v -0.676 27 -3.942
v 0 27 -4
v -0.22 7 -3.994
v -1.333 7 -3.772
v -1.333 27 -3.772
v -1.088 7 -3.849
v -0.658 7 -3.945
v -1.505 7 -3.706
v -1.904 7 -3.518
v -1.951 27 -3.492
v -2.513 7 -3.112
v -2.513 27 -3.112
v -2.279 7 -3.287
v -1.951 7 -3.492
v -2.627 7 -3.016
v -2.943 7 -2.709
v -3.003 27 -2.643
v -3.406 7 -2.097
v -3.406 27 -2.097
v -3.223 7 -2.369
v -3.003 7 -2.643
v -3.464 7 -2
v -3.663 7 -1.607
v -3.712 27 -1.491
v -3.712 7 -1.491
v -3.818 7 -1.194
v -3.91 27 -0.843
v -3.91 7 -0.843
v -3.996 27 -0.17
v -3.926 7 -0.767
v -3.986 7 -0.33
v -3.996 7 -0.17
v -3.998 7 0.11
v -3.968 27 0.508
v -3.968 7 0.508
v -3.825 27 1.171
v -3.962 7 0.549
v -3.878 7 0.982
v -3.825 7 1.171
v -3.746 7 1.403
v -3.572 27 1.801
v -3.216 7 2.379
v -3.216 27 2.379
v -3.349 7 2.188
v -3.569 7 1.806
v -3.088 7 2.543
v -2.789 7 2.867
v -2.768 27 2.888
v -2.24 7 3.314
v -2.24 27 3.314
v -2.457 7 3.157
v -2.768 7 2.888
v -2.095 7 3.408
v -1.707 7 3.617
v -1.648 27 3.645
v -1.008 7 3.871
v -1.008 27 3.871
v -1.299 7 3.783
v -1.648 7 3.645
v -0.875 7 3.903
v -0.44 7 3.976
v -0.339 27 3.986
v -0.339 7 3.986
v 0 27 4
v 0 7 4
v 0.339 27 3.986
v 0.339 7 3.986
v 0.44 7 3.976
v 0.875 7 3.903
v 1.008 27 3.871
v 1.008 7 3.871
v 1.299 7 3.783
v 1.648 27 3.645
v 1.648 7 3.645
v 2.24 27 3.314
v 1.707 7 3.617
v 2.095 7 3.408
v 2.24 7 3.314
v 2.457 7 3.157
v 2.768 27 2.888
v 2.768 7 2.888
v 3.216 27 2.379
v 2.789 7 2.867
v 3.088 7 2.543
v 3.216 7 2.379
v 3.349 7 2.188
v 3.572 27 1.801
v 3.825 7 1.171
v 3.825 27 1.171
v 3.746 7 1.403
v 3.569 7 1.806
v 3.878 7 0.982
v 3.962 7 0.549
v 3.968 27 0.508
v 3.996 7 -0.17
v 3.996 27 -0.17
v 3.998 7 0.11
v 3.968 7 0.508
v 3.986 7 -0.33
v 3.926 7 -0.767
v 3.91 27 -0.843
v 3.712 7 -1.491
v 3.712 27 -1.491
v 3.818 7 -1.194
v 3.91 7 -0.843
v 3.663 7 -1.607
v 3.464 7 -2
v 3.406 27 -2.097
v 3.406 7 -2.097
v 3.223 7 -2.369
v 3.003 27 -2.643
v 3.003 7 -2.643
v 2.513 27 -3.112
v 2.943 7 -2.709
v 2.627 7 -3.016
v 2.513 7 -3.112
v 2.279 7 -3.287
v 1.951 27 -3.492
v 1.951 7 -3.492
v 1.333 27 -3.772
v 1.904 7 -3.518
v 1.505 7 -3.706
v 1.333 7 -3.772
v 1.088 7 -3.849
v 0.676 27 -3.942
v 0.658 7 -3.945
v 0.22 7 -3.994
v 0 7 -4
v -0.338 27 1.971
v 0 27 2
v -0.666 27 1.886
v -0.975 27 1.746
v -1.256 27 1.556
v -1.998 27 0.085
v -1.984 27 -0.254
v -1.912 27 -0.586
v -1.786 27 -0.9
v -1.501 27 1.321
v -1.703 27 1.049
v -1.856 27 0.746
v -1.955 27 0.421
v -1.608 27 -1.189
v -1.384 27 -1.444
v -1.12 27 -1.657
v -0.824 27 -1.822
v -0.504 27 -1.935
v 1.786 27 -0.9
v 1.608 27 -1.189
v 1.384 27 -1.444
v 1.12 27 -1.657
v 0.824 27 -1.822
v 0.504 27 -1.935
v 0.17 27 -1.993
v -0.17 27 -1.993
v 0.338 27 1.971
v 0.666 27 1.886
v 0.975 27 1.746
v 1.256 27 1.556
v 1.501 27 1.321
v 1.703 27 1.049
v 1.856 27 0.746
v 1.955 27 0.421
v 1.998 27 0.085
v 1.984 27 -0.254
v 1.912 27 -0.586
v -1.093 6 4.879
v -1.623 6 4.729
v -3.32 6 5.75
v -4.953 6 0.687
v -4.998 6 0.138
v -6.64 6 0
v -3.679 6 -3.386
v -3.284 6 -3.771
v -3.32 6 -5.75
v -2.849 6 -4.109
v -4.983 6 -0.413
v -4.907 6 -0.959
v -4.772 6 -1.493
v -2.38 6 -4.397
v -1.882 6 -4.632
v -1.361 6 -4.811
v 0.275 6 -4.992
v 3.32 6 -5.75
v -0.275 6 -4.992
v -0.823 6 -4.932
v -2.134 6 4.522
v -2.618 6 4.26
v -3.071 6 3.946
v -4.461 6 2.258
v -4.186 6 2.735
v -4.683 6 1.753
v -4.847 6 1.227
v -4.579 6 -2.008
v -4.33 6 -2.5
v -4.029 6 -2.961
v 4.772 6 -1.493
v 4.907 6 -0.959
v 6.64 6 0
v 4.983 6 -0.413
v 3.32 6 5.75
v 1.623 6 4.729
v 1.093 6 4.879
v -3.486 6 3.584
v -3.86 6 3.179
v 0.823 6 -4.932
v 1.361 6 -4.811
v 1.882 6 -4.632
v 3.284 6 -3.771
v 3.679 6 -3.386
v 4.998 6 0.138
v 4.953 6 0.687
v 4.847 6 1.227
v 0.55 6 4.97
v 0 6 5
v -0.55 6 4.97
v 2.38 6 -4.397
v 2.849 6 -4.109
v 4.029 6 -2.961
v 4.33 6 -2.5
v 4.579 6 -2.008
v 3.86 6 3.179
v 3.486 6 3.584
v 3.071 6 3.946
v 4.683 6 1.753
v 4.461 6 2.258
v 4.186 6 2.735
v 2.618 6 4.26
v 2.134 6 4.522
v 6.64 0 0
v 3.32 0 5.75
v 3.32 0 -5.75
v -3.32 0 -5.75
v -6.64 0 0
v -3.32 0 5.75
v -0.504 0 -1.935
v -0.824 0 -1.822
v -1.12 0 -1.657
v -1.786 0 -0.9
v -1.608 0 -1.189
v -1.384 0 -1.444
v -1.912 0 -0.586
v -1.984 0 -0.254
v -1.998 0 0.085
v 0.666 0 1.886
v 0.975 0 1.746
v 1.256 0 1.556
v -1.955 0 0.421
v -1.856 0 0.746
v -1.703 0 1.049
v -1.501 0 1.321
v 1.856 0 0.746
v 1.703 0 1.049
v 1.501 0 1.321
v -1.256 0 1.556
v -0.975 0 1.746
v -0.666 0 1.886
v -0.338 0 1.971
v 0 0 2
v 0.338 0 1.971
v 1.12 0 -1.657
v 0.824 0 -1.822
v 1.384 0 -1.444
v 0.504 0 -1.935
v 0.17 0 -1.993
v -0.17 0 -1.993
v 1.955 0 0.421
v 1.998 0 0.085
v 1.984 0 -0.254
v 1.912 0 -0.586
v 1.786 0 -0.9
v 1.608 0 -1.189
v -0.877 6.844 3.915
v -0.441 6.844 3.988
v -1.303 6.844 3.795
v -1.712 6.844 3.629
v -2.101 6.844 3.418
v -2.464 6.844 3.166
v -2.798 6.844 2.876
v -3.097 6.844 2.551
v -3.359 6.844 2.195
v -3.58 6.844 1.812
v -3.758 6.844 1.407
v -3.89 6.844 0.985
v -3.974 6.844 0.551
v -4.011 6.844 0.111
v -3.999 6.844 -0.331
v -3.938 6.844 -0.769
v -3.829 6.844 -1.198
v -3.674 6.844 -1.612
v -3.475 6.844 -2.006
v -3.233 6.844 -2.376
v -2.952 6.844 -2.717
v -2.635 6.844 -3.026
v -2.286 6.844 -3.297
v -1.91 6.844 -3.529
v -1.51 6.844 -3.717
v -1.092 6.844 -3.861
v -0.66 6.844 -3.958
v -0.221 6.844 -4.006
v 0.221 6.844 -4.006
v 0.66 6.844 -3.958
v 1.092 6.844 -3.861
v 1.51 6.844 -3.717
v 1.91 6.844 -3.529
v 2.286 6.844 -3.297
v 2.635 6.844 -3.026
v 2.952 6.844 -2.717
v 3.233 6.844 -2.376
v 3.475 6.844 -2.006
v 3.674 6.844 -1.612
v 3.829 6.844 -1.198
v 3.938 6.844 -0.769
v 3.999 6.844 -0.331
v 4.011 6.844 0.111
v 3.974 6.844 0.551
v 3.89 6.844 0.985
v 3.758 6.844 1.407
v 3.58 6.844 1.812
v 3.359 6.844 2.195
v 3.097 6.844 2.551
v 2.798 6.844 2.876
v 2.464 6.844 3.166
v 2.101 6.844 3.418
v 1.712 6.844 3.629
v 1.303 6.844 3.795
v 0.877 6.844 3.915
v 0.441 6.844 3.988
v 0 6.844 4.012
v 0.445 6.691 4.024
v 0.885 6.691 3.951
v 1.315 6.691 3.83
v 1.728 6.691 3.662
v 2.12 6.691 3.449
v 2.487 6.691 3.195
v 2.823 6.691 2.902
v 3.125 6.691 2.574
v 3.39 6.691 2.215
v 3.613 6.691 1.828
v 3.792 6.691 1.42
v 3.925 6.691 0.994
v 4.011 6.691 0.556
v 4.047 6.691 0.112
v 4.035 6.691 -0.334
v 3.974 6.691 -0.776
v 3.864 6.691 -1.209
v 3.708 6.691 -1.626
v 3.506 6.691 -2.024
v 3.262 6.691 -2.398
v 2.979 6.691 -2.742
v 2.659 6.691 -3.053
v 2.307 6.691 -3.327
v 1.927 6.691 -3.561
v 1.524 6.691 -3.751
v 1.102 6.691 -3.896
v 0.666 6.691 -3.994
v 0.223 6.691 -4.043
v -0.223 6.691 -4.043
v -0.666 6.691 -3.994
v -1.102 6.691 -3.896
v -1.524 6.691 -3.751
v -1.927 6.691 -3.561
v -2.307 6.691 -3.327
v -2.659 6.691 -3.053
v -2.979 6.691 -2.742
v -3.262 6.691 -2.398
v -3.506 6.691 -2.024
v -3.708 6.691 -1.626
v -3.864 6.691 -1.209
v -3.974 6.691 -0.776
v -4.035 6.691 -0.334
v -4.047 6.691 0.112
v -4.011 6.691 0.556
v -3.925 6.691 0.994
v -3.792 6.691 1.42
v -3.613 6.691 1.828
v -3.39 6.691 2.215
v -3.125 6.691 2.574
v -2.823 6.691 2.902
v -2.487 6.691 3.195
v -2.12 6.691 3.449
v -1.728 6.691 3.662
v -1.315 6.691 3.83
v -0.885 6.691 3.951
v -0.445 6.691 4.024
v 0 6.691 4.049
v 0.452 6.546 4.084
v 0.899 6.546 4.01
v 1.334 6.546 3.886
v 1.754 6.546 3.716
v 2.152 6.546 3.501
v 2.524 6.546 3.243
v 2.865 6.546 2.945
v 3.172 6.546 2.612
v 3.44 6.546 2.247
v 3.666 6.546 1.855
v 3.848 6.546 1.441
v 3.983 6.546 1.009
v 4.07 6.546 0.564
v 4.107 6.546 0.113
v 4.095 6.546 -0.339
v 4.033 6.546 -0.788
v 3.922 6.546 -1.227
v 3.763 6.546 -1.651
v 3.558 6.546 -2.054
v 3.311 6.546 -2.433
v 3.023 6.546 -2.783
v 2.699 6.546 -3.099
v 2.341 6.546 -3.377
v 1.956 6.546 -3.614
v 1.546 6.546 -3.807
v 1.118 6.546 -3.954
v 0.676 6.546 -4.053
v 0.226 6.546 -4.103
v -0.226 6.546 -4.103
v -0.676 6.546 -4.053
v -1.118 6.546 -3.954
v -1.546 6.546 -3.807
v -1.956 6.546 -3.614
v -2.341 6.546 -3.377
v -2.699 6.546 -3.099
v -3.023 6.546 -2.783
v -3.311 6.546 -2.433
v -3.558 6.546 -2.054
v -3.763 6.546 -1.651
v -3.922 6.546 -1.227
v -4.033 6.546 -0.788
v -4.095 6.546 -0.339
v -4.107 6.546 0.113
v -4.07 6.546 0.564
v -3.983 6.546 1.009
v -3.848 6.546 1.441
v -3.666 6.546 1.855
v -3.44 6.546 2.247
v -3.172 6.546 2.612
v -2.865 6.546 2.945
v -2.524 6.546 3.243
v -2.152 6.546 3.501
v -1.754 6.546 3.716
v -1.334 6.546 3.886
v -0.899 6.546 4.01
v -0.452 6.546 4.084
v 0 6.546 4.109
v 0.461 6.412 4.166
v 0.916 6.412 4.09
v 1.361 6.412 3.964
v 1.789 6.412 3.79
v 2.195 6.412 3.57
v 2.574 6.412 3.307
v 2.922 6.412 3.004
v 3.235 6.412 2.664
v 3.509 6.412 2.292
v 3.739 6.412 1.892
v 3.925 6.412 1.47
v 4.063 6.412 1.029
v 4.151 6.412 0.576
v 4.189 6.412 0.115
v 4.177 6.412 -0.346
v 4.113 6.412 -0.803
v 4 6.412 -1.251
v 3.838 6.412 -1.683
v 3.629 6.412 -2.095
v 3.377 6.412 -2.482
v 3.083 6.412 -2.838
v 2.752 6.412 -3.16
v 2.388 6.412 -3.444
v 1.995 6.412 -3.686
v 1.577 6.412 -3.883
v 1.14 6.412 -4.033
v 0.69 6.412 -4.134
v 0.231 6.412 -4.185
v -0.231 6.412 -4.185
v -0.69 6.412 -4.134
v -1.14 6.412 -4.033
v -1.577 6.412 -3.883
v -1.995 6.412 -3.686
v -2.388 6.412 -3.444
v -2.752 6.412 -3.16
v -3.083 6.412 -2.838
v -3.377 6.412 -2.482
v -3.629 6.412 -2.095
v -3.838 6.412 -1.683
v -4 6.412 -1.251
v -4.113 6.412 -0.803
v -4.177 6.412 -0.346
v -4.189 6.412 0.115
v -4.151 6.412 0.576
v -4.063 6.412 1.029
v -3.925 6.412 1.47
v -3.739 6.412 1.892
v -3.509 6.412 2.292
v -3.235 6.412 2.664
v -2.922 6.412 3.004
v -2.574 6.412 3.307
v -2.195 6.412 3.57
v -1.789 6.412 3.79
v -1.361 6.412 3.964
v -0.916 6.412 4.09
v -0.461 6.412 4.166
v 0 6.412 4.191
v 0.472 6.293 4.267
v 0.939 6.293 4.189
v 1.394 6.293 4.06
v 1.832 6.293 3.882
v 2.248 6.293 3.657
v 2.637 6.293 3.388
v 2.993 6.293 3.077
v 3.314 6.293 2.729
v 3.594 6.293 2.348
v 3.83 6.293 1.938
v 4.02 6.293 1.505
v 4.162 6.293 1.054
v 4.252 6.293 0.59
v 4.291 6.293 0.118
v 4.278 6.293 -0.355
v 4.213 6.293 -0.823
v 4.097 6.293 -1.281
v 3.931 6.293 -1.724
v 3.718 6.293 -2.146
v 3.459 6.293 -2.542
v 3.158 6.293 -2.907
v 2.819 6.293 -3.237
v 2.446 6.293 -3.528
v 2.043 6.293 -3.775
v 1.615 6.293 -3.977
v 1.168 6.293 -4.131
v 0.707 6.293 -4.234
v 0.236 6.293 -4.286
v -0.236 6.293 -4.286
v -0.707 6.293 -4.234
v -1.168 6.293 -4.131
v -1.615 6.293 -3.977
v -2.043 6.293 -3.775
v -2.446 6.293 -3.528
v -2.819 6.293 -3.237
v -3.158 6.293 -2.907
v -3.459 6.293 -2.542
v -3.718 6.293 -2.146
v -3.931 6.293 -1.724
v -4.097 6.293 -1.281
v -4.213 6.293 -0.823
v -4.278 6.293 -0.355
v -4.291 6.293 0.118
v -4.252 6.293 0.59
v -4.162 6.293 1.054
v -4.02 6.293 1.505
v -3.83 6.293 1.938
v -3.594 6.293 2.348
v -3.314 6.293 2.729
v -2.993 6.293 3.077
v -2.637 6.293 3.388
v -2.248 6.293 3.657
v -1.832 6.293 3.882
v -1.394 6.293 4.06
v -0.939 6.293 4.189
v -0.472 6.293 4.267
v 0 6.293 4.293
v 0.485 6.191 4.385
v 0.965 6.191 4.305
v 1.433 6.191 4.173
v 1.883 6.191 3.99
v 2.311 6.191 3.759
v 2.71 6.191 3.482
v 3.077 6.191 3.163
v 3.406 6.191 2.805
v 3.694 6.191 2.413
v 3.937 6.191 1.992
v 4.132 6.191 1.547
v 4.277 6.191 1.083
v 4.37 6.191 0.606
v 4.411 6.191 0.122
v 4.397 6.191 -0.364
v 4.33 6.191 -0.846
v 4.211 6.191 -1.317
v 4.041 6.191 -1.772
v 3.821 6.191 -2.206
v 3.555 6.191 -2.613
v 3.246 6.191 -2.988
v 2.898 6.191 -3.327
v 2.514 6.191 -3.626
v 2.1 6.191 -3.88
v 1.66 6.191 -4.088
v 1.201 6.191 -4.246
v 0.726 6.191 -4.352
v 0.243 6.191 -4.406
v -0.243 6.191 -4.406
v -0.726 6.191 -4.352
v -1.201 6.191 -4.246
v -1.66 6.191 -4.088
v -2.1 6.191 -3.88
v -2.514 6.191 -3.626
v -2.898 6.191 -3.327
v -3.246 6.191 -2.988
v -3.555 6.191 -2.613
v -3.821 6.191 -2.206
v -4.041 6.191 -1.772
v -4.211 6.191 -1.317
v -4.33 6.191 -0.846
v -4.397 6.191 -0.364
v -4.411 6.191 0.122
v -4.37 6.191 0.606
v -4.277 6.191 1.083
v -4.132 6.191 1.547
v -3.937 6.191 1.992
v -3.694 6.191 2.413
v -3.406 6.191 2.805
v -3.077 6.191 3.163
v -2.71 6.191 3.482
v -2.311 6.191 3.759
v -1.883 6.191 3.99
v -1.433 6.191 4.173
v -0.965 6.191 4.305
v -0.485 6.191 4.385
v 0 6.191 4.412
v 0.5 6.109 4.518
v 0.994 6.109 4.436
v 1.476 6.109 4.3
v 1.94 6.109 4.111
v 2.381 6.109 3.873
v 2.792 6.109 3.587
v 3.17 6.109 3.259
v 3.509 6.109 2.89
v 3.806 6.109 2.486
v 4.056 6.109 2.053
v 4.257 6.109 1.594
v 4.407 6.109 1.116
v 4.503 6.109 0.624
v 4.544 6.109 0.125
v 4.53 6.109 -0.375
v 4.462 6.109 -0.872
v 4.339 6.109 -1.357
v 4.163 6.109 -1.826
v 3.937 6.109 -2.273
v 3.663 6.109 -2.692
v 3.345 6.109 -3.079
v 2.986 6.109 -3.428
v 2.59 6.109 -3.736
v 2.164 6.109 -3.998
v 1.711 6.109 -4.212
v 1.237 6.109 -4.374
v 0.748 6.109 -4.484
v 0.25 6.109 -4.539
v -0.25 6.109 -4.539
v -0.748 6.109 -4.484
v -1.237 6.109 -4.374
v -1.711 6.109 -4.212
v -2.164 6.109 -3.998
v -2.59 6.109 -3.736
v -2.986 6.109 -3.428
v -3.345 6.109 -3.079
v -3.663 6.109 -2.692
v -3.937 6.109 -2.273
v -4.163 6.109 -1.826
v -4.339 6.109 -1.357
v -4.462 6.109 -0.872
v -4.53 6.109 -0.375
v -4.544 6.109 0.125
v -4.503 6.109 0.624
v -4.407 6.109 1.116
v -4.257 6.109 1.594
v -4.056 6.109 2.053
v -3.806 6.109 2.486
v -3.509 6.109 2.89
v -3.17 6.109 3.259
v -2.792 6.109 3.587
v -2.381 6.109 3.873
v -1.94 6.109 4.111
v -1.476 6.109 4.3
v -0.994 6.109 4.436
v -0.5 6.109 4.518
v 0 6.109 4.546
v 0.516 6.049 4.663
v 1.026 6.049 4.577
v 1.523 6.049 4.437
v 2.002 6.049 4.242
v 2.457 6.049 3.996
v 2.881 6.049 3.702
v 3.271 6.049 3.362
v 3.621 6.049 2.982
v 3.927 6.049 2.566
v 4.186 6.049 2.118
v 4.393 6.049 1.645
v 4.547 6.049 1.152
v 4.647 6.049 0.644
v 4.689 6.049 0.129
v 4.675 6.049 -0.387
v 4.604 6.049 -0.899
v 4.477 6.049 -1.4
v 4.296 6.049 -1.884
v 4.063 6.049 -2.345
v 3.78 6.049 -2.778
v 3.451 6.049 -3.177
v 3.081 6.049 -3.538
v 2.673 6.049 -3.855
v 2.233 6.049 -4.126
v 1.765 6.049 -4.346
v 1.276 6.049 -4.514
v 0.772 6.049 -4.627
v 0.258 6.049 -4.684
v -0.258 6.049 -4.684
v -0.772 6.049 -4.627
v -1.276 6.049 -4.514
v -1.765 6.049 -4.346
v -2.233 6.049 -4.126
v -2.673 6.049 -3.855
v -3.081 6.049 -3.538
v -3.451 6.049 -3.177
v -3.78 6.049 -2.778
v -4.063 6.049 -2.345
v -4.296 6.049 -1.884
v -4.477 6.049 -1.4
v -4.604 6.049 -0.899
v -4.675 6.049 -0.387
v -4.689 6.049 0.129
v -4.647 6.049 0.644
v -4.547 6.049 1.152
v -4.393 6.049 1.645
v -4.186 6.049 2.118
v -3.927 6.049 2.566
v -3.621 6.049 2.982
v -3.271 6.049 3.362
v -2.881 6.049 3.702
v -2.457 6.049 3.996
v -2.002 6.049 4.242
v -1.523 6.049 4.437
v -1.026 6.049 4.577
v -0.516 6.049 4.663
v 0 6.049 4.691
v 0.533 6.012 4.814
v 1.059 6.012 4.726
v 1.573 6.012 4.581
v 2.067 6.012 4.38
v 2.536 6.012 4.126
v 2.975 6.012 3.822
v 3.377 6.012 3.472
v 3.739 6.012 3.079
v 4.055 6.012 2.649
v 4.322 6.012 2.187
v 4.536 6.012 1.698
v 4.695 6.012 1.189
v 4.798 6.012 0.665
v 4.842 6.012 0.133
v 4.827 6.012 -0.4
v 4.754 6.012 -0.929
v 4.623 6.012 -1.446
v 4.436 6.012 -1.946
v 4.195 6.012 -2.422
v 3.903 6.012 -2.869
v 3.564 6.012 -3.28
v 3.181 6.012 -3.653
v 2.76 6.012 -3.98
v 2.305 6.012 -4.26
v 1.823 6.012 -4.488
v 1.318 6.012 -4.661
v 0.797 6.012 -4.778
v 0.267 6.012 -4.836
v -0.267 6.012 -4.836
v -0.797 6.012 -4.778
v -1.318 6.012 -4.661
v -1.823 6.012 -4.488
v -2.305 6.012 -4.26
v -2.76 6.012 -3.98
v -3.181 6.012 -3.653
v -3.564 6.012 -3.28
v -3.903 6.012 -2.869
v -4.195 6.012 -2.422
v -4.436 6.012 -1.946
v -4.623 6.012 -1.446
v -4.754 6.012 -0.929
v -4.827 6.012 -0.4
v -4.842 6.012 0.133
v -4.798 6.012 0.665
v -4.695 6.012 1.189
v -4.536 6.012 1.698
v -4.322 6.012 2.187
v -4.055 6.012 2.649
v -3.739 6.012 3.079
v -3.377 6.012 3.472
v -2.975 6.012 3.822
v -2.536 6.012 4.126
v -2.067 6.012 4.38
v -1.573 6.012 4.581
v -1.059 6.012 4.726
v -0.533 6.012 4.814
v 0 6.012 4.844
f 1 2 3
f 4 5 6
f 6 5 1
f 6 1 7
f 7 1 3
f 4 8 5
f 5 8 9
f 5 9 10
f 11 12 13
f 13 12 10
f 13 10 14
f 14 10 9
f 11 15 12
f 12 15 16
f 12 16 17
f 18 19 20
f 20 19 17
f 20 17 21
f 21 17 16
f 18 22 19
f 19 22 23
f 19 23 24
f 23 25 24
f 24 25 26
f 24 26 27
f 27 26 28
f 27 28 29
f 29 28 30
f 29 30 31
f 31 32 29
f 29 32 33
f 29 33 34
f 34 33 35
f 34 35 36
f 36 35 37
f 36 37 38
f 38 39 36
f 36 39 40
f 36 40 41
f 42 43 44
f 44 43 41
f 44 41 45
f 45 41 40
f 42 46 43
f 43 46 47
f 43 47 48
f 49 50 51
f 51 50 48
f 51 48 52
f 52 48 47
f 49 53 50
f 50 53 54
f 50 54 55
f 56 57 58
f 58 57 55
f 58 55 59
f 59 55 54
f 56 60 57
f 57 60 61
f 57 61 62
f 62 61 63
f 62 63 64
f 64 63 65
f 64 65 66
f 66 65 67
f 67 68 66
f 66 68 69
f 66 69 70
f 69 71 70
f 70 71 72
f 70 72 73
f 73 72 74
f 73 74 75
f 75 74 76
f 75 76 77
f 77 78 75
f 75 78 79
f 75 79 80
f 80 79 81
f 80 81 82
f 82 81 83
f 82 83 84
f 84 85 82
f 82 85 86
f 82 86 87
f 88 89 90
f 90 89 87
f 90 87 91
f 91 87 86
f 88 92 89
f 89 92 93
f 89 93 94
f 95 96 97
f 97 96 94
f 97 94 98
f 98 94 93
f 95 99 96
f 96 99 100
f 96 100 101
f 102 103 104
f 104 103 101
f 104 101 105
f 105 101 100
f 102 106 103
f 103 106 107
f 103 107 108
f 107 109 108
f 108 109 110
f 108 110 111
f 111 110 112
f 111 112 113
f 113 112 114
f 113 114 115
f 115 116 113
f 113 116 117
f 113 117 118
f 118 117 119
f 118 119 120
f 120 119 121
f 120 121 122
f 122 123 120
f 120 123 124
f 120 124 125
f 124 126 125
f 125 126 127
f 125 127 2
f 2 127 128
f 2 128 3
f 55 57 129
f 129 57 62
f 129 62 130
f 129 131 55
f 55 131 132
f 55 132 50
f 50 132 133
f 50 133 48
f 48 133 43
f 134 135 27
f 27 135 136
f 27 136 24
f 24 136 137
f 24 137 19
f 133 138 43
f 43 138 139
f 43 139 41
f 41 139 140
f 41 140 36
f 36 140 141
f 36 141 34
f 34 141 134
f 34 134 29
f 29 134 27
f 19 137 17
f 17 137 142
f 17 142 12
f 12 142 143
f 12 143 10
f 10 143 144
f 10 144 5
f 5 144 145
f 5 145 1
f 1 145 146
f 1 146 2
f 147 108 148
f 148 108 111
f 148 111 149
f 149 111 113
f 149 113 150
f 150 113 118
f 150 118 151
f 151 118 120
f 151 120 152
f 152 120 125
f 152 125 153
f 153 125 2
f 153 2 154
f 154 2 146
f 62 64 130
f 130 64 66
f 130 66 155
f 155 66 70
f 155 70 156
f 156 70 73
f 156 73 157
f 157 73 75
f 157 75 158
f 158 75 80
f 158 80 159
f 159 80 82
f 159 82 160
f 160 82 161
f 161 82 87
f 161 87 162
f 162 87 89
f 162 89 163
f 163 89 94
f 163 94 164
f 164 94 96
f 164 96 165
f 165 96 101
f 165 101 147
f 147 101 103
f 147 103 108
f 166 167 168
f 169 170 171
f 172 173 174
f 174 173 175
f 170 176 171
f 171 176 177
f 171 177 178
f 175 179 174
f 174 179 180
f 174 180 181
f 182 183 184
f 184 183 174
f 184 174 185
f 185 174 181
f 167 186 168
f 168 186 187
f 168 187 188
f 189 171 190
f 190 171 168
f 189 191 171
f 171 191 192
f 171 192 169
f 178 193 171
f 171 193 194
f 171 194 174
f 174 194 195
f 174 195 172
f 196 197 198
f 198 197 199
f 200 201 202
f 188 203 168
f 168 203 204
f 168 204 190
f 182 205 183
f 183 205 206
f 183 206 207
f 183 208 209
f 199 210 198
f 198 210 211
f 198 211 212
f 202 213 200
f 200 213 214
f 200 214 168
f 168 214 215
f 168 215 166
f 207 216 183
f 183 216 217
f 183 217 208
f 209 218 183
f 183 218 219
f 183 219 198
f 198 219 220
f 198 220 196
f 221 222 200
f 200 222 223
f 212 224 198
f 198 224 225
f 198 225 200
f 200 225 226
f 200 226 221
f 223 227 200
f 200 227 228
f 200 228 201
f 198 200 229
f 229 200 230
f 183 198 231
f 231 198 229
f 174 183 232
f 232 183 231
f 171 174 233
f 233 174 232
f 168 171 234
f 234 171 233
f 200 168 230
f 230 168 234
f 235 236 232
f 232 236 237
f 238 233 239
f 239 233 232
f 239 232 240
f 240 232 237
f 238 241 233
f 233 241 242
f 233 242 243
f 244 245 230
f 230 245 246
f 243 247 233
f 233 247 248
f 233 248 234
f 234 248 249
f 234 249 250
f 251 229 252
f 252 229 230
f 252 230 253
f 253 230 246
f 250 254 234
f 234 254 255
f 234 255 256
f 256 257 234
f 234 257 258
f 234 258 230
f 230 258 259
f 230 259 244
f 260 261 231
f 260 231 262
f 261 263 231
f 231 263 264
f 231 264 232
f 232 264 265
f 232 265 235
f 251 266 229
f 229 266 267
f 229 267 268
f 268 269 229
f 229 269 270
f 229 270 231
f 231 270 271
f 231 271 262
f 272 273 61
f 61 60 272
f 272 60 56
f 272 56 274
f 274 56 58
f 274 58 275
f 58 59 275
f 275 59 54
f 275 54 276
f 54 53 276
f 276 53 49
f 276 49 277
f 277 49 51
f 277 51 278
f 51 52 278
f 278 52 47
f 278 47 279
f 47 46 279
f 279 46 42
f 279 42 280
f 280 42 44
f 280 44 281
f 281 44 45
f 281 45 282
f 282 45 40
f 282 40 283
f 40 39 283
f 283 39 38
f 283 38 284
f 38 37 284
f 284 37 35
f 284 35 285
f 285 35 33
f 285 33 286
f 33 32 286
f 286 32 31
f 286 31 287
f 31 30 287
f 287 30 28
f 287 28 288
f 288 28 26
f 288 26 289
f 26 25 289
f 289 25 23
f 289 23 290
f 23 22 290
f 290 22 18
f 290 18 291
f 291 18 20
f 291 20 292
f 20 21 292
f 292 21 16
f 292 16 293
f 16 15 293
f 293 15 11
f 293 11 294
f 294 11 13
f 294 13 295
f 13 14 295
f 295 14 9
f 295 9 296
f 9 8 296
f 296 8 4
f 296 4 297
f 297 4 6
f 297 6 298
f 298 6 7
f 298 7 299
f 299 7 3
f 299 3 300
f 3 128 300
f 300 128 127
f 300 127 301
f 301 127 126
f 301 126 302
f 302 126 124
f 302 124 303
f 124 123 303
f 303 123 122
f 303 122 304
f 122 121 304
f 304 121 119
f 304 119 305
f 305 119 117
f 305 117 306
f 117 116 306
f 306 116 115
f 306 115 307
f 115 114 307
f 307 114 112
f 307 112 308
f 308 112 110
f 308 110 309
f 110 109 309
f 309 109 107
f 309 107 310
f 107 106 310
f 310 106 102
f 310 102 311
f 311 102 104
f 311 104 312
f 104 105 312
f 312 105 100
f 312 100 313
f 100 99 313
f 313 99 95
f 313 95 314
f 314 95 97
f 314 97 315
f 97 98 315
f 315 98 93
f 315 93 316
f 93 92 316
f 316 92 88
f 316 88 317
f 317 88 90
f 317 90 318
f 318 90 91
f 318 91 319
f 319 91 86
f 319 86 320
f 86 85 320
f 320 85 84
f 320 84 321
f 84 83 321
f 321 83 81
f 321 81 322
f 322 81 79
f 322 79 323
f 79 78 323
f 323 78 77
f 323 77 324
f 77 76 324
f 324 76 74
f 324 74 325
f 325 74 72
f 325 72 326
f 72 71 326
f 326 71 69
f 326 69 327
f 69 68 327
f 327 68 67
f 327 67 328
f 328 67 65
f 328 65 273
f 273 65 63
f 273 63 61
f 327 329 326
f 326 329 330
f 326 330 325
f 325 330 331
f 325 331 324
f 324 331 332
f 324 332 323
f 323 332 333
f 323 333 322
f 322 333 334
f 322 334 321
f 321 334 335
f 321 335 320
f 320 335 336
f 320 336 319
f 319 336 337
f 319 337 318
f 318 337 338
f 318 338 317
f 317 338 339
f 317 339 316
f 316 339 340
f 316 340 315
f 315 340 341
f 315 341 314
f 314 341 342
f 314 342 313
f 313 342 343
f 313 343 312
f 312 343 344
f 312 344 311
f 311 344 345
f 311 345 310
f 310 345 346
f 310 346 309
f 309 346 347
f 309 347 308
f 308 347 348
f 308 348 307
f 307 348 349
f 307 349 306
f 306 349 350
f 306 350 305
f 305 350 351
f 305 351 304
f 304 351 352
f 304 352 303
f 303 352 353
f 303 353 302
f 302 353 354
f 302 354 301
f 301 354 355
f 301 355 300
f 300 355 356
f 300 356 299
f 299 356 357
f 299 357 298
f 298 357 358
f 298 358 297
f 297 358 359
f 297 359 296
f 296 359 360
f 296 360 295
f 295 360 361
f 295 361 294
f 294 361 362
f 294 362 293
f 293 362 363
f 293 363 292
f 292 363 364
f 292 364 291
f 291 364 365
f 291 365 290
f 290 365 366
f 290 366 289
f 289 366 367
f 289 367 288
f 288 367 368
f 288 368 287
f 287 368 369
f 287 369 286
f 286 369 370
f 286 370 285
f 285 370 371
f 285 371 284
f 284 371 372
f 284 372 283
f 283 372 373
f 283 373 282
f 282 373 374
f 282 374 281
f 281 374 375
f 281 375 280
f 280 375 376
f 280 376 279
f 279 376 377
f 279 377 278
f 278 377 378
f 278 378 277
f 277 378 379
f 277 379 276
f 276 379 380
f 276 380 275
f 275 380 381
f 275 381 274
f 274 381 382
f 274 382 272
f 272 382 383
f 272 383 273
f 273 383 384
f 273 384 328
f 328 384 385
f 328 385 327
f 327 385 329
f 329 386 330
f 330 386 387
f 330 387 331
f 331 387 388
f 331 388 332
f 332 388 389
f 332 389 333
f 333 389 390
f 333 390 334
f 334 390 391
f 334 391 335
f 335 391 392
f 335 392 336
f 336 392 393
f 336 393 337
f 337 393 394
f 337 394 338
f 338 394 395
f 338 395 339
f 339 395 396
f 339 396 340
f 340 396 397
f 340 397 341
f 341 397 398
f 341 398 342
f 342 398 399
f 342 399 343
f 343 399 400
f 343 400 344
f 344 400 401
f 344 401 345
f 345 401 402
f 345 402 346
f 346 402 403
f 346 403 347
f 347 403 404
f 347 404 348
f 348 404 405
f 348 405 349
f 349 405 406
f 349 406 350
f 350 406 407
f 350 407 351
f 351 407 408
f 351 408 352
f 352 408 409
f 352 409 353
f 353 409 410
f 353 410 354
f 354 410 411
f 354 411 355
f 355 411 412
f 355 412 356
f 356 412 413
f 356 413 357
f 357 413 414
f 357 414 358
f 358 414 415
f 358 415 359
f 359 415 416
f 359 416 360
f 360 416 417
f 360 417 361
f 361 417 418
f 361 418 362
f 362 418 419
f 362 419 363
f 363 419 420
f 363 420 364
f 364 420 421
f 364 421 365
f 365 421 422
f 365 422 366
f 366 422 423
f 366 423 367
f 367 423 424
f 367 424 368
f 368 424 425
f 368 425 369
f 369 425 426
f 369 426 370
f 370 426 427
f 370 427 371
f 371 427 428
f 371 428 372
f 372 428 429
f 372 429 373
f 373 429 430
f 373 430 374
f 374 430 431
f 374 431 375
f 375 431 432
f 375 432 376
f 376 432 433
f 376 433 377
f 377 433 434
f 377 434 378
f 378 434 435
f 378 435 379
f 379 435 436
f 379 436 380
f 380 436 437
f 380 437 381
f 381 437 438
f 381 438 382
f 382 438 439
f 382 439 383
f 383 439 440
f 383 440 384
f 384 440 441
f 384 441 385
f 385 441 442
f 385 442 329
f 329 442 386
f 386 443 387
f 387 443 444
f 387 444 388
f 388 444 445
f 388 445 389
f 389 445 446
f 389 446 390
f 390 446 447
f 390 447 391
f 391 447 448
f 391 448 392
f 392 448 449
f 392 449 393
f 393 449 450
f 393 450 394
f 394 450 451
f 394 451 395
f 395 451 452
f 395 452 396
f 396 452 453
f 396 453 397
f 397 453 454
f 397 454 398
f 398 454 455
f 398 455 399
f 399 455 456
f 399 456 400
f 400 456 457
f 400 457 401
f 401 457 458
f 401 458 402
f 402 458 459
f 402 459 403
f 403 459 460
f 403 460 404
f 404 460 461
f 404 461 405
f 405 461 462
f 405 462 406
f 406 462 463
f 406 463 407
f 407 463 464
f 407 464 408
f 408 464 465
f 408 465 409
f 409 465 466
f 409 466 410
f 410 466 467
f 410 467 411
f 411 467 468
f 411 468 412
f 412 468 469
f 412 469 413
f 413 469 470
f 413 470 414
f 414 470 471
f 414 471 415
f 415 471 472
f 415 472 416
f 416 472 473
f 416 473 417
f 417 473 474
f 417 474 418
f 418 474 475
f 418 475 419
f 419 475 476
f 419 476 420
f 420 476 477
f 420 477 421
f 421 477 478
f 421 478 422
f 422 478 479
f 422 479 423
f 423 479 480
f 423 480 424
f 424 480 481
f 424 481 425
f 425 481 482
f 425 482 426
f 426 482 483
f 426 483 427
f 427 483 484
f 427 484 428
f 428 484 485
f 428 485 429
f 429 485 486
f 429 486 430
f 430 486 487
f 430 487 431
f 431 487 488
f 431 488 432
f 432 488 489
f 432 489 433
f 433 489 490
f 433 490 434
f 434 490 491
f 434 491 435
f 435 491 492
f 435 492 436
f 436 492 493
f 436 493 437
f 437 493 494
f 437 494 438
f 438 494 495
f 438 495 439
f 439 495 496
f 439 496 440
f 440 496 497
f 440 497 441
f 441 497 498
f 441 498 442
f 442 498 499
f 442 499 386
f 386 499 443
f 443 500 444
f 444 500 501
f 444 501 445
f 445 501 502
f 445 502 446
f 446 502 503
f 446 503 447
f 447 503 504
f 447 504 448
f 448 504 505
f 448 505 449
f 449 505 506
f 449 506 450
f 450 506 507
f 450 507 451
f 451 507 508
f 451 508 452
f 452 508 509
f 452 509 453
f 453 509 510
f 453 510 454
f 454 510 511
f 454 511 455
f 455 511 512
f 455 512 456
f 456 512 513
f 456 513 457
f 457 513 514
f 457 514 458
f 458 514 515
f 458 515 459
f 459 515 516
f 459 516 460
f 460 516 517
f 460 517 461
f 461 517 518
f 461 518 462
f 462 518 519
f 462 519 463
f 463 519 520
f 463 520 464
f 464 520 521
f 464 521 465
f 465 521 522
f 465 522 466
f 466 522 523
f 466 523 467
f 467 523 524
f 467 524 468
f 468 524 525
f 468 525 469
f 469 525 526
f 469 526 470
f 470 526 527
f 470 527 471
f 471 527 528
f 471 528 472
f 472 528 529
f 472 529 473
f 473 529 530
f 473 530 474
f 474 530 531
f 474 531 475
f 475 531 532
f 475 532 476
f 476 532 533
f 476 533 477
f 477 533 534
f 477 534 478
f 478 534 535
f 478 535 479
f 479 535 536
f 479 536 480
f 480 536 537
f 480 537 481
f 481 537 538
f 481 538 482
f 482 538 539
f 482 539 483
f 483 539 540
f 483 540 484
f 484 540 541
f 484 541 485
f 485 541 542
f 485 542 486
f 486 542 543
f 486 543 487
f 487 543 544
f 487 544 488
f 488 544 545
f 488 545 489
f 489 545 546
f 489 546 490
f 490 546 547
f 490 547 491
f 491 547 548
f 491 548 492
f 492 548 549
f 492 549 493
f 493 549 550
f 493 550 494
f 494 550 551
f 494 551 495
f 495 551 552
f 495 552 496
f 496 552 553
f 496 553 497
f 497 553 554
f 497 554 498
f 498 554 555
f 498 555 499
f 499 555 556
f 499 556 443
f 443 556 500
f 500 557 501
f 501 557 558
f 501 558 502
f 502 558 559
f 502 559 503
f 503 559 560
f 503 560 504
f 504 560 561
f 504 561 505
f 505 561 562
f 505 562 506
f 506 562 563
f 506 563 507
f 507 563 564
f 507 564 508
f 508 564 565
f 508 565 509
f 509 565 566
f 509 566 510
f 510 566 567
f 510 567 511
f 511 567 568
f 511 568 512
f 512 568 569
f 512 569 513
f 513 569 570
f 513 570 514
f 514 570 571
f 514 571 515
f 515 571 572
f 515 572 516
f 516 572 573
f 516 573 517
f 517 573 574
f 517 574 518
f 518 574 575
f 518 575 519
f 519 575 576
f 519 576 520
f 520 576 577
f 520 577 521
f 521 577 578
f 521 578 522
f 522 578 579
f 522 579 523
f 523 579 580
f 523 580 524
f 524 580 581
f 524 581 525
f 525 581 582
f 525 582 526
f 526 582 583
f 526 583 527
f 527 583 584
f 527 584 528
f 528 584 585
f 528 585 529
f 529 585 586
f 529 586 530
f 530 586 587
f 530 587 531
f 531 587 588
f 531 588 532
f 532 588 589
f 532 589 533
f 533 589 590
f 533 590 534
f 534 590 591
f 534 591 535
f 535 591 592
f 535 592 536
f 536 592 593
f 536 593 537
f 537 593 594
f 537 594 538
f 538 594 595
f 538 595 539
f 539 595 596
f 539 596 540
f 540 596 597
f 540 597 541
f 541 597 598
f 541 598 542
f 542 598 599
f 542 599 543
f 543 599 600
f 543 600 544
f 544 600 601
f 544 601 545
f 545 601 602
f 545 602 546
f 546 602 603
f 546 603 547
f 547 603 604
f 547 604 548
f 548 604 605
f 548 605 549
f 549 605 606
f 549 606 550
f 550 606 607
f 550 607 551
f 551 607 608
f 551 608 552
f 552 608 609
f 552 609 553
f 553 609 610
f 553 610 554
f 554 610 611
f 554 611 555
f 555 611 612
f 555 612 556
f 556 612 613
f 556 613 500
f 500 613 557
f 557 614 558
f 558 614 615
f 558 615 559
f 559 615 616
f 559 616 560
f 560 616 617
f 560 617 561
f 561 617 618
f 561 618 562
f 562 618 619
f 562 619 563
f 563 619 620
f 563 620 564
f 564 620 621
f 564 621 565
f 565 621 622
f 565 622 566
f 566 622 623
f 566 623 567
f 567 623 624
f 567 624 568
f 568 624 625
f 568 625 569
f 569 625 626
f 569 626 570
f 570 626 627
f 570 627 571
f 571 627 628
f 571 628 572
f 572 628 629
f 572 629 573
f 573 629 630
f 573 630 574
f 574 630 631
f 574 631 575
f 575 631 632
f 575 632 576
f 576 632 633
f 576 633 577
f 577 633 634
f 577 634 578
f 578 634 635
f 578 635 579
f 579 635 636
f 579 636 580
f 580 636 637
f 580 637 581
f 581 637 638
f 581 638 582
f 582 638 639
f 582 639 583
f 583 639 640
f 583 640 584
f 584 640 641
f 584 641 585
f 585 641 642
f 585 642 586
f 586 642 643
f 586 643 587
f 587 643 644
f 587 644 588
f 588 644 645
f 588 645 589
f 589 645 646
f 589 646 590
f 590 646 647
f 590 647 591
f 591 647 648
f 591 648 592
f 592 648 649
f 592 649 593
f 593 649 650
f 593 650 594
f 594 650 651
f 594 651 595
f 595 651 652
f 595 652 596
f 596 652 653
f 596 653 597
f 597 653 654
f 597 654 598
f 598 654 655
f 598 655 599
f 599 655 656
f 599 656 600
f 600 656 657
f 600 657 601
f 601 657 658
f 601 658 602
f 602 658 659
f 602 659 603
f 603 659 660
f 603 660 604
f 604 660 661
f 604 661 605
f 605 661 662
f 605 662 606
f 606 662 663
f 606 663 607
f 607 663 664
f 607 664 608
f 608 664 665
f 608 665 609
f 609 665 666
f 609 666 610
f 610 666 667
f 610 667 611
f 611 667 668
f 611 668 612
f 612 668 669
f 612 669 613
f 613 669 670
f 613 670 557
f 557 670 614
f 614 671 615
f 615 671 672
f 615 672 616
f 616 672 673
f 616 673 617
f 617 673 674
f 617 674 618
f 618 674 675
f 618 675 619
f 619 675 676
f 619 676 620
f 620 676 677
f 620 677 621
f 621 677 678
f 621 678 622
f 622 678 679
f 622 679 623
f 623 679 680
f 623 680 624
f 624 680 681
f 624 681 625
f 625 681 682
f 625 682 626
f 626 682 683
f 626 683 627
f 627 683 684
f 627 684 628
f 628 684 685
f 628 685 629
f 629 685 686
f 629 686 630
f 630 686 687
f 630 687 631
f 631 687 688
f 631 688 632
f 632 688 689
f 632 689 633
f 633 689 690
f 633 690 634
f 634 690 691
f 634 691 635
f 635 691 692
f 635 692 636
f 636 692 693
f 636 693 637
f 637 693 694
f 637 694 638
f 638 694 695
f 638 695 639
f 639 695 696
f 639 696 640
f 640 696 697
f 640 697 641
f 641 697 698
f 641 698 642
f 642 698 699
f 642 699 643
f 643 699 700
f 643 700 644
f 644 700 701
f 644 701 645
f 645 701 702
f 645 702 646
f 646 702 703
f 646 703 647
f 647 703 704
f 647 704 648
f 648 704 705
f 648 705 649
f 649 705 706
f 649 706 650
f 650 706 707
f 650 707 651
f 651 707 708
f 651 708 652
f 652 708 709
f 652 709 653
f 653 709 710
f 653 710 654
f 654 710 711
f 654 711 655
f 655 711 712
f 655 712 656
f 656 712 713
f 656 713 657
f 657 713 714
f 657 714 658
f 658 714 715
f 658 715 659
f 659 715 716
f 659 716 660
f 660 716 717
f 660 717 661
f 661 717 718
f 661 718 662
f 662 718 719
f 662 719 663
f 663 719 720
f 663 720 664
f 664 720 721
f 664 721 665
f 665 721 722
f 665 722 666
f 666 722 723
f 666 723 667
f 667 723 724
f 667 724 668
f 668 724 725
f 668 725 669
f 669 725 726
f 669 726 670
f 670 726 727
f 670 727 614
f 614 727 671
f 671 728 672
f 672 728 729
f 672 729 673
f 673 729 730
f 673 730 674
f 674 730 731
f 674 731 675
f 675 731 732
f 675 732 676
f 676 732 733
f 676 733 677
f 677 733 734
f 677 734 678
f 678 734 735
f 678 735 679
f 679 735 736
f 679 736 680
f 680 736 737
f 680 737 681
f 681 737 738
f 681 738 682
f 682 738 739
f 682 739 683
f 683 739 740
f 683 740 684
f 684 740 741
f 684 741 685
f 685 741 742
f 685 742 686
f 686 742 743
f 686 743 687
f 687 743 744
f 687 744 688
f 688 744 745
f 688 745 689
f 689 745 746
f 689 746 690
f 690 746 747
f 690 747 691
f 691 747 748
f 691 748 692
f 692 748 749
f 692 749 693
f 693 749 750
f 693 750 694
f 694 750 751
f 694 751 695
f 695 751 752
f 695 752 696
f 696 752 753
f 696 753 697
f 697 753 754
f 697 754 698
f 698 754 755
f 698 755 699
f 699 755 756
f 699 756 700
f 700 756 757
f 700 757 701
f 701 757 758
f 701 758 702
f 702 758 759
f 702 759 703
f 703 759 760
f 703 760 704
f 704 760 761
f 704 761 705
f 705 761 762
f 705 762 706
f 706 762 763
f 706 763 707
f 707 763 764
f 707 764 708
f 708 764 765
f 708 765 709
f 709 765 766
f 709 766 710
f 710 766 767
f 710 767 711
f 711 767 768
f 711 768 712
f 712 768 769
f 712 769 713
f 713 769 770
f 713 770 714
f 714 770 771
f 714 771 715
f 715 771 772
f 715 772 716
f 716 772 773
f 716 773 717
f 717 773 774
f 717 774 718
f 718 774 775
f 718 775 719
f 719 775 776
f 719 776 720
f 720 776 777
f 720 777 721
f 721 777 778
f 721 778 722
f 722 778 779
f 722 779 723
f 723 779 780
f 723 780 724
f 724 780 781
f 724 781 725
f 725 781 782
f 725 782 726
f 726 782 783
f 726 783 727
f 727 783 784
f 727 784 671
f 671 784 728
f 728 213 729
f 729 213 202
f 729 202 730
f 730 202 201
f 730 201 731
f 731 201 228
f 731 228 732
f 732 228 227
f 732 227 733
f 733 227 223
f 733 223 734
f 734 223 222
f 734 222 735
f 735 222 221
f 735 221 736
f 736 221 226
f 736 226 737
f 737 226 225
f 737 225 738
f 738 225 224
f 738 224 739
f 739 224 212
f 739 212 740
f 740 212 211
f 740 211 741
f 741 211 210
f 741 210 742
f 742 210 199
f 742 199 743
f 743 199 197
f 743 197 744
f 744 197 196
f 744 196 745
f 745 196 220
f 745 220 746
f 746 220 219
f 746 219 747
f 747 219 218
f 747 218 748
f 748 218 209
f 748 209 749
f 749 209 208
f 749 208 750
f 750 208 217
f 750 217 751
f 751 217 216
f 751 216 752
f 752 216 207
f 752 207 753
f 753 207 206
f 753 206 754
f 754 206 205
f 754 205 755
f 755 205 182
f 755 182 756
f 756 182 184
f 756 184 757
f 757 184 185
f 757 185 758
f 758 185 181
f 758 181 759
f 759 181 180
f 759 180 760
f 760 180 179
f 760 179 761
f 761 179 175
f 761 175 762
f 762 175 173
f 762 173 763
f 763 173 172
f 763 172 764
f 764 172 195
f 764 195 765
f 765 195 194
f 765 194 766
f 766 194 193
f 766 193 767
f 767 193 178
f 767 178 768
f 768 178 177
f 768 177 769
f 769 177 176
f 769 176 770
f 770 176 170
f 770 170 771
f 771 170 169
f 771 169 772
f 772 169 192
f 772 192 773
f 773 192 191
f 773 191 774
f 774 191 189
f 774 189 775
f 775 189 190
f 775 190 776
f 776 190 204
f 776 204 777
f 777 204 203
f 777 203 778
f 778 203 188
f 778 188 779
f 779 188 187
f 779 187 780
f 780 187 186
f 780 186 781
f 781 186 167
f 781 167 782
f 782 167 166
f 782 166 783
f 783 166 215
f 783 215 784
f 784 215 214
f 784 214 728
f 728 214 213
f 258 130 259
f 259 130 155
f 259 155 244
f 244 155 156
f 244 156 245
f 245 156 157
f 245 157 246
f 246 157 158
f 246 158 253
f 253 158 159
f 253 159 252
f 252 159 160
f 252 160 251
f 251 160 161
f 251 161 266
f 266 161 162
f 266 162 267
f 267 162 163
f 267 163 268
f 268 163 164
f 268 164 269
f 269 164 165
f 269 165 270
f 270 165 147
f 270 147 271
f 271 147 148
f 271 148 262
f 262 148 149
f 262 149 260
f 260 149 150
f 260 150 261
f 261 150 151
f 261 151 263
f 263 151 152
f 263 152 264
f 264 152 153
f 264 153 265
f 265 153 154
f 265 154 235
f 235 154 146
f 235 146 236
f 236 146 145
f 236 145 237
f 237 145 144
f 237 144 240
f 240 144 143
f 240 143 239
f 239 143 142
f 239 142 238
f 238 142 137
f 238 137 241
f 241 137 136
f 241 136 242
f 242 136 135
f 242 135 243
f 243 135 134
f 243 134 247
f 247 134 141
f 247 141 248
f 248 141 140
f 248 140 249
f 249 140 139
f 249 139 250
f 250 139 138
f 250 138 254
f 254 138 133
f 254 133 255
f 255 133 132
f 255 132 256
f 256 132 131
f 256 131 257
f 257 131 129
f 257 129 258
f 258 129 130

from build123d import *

# Parameters (mm, degrees)
SKETCH_1_R               = 4
EXTRUDE_2_DEPTH          = 27
SKETCH_1_5_R             = 4
EXTRUDE_3_DEPTH          = 6
FILLET_1_R               = 1
CUT_EXTRUDE_1_DEPTH      = 29.392707397
CUT_EXTRUDE_1_DEPTH_BACK = 29.392707397
SKETCH_2_R               = 2


with BuildPart() as part:
    # 草图1 → 凸台-拉伸2 (new body)
    with BuildSketch(Plane(origin=(0, 0, 0), x_dir=(1, 0, 0), z_dir=(0, 1, 0))):
        Circle(SKETCH_1_R)
    extrude(amount=EXTRUDE_2_DEPTH)

    # 草图1<5> → 凸台-拉伸3 (add)
    with BuildSketch(Plane(origin=(0, 0, 0), x_dir=(1, 0, 0), z_dir=(0, 1, 0))):
        Polygon((6.639528096, 0), (3.319764048, 5.75), (-3.319764048, 5.75), (-6.639528096, 0), (-3.319764048, -5.75), (3.319764048, -5.75), align=None)
        Circle(SKETCH_1_5_R, mode=Mode.SUBTRACT)
    extrude(amount=EXTRUDE_3_DEPTH)

    # 圆角1
    fillet_1_edges = [part.edges().sort_by_distance(p)[0] for p in [
        (-4, 6, 0),
    ]]
    fillet(fillet_1_edges, radius=FILLET_1_R)

    # 草图2 → 切除-拉伸1 (cut, two sides: drawn at the far end of the back side and taken through both)
    with BuildSketch(Plane(origin=(0, 0, 0), x_dir=(1, 0, 0), z_dir=(0, 1, 0)).offset(-CUT_EXTRUDE_1_DEPTH_BACK)):
        Circle(SKETCH_2_R)
    extrude(amount=CUT_EXTRUDE_1_DEPTH + CUT_EXTRUDE_1_DEPTH_BACK, mode=Mode.SUBTRACT)


solid = part.part
